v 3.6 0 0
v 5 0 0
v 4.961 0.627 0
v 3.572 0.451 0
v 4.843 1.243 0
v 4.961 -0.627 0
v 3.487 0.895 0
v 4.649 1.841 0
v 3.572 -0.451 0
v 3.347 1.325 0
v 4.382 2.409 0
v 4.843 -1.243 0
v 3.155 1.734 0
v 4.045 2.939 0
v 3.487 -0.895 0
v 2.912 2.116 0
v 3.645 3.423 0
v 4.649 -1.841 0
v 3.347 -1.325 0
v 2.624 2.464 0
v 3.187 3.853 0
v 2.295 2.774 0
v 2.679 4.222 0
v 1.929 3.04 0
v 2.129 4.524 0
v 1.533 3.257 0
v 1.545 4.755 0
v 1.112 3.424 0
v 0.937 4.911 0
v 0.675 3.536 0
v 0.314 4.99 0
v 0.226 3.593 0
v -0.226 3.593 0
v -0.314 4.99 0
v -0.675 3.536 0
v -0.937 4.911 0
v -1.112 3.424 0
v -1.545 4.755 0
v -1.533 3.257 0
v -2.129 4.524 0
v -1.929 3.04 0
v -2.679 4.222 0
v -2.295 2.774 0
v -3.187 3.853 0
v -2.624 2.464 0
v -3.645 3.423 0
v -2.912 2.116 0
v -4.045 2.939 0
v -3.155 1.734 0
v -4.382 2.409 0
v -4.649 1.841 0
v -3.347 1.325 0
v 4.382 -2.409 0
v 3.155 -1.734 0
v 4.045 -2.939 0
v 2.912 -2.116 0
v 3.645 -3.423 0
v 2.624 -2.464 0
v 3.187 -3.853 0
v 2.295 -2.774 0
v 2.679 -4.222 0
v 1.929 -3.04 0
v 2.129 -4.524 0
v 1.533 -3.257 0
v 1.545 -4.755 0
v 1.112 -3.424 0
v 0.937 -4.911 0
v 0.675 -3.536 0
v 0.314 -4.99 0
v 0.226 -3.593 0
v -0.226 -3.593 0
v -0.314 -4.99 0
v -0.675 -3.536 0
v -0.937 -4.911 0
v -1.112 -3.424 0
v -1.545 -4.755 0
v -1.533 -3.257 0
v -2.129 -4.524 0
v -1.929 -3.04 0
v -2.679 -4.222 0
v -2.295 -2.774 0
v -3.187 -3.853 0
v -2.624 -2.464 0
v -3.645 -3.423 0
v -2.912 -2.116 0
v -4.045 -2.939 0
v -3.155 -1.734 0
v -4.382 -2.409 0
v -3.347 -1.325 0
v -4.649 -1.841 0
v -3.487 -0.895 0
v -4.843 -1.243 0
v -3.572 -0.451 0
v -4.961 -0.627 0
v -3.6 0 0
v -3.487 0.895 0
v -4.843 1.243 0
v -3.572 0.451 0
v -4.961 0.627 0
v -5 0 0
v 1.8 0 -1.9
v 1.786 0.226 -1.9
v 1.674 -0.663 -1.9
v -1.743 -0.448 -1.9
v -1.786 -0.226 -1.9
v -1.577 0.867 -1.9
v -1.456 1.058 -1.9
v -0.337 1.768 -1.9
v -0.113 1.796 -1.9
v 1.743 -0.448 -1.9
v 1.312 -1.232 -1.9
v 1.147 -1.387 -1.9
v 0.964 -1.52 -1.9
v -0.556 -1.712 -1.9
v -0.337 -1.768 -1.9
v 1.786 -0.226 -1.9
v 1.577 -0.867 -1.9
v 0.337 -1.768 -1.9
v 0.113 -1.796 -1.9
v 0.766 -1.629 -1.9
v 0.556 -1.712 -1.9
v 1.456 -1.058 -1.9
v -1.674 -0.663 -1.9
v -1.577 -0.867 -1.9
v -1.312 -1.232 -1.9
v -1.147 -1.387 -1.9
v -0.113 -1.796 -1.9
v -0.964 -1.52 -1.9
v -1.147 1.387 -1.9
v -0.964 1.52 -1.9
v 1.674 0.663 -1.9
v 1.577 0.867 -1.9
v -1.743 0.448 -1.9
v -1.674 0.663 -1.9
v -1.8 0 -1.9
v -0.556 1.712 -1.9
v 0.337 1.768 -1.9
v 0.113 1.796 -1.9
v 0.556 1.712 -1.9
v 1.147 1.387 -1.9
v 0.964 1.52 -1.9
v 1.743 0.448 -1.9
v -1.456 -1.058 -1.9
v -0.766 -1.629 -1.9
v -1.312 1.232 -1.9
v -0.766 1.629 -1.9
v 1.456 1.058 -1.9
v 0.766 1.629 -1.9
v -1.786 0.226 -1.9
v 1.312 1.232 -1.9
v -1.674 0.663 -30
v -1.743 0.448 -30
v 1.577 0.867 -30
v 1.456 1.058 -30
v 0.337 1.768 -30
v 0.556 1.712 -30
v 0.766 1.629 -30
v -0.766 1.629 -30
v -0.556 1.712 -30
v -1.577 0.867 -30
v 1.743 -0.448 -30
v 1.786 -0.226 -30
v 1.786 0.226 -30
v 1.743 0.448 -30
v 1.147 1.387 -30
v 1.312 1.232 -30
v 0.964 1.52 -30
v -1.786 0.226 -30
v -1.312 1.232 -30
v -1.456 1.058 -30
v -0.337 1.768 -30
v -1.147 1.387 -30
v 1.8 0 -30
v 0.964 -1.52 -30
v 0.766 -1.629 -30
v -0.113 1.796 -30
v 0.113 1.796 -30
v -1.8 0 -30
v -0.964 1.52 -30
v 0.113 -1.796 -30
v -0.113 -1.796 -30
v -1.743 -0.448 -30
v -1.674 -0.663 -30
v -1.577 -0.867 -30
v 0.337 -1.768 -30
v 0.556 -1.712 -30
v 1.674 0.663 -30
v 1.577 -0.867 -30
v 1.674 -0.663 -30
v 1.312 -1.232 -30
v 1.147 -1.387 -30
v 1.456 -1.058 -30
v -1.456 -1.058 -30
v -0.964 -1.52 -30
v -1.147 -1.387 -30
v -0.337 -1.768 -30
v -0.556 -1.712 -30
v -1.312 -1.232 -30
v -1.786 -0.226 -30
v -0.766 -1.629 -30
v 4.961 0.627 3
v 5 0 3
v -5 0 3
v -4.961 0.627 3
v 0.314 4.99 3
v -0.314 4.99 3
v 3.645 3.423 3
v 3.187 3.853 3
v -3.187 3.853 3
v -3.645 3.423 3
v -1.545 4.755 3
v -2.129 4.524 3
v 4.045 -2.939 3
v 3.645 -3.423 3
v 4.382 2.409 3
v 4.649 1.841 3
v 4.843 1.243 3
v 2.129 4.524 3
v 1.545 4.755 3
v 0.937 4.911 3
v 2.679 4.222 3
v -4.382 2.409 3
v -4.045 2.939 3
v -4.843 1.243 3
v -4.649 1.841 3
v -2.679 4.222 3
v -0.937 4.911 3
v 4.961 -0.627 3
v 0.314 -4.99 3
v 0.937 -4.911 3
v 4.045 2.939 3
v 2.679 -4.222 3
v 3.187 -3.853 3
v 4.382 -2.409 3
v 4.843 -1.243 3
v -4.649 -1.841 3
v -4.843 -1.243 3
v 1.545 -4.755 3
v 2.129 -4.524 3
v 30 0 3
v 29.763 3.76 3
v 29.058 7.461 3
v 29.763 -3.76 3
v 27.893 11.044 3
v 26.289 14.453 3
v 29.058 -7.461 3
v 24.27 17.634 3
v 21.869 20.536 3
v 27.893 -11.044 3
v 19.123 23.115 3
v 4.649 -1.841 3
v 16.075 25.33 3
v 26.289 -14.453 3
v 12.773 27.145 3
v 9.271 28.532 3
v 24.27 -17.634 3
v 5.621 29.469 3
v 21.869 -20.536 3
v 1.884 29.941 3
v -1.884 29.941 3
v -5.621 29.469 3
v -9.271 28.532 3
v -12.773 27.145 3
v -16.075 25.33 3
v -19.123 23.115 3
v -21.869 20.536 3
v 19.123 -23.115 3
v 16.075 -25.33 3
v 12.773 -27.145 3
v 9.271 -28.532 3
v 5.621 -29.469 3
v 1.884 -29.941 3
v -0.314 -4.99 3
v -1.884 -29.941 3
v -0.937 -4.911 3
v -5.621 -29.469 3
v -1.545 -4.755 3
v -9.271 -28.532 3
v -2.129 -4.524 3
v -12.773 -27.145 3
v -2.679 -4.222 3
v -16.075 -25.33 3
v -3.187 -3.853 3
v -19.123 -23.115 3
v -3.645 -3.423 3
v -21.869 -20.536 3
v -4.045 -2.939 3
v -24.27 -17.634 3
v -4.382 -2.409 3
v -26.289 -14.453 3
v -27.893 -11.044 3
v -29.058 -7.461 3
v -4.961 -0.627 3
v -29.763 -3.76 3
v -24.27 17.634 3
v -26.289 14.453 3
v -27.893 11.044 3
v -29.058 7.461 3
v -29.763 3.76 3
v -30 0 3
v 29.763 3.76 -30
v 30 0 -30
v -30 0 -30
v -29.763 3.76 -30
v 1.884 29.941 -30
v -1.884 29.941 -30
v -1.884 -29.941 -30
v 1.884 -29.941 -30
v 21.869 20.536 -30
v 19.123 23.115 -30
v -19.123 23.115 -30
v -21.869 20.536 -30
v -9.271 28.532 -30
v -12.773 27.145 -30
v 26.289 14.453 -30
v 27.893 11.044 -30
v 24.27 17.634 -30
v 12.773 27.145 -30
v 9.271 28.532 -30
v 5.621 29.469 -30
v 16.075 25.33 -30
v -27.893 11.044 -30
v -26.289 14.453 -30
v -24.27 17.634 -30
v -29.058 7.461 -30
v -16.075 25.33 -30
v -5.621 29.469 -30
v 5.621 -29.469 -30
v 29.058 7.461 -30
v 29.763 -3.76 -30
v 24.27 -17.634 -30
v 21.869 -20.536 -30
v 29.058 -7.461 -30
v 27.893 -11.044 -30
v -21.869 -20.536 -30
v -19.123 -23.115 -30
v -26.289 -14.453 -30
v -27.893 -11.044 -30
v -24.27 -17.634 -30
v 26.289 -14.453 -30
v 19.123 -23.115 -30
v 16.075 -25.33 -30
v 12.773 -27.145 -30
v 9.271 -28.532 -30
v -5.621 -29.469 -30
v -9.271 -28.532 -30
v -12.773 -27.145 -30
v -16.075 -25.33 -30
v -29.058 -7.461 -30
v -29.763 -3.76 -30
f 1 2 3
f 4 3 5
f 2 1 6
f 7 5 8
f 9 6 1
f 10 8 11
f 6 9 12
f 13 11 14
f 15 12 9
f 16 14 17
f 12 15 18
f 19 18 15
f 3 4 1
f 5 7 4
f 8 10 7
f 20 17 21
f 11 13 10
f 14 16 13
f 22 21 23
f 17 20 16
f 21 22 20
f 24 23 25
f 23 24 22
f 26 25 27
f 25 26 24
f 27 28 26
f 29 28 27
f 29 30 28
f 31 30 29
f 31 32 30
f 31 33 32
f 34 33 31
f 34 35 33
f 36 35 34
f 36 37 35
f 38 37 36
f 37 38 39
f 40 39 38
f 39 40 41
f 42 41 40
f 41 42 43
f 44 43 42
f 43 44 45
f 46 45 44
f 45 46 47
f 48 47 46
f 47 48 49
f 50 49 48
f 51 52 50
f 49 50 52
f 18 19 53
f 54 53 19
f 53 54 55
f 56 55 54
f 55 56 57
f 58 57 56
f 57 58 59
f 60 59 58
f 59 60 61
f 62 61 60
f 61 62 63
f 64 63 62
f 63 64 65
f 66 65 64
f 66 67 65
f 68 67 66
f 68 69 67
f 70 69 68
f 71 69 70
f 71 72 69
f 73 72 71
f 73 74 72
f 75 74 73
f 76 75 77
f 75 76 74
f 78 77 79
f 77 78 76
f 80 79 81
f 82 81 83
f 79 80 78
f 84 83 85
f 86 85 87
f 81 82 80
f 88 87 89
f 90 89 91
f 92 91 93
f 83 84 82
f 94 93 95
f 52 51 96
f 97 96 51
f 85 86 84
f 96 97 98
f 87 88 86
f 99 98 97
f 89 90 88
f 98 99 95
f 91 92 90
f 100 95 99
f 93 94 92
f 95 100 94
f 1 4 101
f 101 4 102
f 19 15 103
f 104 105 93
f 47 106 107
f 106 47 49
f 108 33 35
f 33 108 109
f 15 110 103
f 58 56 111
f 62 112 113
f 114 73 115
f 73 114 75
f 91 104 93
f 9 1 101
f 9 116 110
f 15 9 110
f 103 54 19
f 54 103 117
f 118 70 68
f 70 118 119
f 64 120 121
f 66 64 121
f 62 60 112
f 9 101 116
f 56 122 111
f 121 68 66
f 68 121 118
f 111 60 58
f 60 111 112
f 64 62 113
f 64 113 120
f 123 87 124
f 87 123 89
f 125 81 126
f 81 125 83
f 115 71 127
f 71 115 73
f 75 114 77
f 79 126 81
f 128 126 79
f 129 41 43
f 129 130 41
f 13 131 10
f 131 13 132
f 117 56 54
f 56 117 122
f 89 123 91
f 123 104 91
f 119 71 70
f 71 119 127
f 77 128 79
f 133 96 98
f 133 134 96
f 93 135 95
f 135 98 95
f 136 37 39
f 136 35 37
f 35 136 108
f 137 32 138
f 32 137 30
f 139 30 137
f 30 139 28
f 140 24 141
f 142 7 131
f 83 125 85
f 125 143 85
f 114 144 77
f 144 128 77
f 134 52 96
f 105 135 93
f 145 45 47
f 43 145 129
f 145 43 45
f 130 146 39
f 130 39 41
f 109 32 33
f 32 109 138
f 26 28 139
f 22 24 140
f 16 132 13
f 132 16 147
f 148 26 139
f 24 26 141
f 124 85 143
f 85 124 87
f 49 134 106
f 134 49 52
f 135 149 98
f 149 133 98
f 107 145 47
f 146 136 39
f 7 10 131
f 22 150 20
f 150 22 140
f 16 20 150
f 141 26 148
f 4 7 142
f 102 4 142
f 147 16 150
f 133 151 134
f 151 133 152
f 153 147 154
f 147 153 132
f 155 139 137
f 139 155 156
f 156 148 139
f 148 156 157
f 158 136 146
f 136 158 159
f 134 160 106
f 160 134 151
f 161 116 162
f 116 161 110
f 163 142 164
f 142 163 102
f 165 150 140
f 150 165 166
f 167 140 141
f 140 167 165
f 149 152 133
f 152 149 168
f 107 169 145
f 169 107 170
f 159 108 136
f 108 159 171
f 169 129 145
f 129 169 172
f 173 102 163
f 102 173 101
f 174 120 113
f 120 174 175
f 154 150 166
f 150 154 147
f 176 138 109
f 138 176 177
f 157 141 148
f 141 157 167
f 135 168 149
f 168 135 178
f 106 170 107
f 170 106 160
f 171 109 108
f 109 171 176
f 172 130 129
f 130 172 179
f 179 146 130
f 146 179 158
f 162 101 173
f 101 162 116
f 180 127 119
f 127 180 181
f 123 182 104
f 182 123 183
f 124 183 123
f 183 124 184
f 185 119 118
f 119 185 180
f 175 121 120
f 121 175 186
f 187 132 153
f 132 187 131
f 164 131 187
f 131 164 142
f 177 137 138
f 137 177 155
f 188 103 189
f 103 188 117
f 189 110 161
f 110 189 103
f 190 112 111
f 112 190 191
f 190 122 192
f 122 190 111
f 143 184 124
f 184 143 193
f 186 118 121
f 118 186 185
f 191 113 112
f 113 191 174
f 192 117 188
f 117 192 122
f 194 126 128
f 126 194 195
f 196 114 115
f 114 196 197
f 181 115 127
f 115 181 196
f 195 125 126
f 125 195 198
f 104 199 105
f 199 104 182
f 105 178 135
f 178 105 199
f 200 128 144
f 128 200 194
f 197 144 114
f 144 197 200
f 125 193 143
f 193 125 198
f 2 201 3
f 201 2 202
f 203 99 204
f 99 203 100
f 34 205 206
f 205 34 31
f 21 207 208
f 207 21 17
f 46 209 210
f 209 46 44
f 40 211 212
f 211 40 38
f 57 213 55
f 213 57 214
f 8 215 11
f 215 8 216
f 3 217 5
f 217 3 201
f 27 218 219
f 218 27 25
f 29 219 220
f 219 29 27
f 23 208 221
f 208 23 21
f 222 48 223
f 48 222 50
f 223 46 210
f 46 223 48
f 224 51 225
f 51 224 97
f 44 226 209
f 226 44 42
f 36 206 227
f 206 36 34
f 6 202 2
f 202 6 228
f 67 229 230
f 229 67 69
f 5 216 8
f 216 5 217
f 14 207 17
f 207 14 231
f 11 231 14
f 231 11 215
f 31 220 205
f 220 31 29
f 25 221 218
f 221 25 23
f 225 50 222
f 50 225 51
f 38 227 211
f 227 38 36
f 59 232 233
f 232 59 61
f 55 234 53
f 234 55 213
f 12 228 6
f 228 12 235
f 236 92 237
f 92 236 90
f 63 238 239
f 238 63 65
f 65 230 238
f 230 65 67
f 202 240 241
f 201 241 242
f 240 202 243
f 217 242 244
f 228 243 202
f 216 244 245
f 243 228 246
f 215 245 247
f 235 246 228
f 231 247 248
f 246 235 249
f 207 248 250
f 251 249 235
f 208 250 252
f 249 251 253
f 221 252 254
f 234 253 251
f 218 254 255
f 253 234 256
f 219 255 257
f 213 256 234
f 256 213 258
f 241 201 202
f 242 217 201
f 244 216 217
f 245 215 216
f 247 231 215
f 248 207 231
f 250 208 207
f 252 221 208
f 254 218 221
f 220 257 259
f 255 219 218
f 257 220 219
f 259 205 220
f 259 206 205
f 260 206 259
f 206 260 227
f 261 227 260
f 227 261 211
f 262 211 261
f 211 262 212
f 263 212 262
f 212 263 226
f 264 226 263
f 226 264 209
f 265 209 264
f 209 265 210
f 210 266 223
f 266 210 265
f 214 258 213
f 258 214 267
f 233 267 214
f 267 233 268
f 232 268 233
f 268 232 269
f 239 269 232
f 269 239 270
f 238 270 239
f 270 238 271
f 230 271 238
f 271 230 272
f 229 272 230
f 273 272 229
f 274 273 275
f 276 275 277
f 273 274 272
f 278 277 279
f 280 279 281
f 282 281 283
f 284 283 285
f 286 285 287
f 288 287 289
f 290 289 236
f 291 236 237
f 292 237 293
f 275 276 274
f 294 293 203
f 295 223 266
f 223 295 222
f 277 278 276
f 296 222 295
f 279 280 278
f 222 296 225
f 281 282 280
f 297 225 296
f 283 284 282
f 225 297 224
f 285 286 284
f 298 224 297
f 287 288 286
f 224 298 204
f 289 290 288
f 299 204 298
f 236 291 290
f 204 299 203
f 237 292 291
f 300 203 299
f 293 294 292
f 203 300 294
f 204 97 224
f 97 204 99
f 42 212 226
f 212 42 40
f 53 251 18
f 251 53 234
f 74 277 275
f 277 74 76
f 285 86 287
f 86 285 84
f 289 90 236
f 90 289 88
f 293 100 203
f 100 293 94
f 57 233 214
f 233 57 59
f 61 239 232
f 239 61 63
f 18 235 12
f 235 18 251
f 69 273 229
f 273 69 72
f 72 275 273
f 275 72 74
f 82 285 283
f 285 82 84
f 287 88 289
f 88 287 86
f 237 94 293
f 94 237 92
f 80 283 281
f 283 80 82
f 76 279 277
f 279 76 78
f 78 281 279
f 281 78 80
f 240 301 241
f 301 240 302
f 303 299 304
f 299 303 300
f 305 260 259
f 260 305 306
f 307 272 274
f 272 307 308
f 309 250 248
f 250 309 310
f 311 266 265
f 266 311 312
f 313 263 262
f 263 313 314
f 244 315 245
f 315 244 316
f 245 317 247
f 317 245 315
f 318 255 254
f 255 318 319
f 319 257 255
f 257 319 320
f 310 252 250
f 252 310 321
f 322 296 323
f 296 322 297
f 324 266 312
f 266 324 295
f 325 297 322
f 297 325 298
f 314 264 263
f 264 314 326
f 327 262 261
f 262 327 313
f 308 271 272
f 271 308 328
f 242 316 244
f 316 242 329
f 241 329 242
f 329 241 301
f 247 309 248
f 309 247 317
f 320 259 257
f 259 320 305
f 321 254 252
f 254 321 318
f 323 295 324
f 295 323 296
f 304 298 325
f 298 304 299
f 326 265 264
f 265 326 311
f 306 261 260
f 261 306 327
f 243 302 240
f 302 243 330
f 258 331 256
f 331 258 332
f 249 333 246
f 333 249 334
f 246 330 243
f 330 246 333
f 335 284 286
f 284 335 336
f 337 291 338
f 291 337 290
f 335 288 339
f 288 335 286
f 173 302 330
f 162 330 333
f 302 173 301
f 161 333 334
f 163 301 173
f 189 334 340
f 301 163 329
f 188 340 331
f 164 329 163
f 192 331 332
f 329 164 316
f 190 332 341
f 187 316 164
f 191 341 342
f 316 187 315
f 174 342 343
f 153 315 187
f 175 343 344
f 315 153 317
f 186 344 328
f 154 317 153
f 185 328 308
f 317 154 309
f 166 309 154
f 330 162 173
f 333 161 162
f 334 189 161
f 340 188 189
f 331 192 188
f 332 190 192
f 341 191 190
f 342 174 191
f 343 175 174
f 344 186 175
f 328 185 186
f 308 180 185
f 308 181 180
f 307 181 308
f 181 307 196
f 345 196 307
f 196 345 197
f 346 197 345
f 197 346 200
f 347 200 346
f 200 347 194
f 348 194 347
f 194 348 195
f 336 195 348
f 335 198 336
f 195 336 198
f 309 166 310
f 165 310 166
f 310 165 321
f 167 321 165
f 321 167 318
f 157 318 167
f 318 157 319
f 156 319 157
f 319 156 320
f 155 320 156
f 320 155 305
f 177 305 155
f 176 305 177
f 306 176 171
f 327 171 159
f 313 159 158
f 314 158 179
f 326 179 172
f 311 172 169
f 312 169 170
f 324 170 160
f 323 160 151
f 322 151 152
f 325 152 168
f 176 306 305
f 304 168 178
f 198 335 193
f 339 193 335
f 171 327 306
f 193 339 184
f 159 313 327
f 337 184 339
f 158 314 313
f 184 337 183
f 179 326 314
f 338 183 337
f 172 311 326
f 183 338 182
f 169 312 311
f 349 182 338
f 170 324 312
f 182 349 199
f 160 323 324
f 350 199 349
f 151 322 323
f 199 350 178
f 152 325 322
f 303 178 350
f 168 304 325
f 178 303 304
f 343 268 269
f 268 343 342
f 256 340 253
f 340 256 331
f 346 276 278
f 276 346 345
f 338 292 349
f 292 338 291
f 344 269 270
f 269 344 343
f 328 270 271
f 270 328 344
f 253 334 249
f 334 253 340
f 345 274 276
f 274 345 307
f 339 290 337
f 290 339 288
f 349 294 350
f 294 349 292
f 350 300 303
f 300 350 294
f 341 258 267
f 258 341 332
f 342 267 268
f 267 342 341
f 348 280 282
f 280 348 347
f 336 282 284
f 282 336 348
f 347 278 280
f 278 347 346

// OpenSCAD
$fn = 50;

difference() {
	union() {
		translate(v = [0, 0, -30.0]) {
			cylinder(h = 33, r = 30.0);
		}
	}
	union() {
		translate(v = [0, 0, 0]) {
			rotate(a = [0, 0, 0]) {
				difference() {
					union() {
						translate(v = [0, 0, -33.0]) {
							cylinder(h = 33, r = 1.5);
						}
						translate(v = [0, 0, -1.9]) {
							cylinder(h = 1.9, r1 = 1.8, r2 = 3.6);
						}
						translate(v = [0, 0, -33.0]) {
							cylinder(h = 33, r = 1.8);
						}
						translate(v = [0, 0, -33.0]) {
							cylinder(h = 33, r = 1.5);
						}
					}
					union();
				}
			}
		}
		#cylinder(h = 3, r = 5.0);
	}
}
